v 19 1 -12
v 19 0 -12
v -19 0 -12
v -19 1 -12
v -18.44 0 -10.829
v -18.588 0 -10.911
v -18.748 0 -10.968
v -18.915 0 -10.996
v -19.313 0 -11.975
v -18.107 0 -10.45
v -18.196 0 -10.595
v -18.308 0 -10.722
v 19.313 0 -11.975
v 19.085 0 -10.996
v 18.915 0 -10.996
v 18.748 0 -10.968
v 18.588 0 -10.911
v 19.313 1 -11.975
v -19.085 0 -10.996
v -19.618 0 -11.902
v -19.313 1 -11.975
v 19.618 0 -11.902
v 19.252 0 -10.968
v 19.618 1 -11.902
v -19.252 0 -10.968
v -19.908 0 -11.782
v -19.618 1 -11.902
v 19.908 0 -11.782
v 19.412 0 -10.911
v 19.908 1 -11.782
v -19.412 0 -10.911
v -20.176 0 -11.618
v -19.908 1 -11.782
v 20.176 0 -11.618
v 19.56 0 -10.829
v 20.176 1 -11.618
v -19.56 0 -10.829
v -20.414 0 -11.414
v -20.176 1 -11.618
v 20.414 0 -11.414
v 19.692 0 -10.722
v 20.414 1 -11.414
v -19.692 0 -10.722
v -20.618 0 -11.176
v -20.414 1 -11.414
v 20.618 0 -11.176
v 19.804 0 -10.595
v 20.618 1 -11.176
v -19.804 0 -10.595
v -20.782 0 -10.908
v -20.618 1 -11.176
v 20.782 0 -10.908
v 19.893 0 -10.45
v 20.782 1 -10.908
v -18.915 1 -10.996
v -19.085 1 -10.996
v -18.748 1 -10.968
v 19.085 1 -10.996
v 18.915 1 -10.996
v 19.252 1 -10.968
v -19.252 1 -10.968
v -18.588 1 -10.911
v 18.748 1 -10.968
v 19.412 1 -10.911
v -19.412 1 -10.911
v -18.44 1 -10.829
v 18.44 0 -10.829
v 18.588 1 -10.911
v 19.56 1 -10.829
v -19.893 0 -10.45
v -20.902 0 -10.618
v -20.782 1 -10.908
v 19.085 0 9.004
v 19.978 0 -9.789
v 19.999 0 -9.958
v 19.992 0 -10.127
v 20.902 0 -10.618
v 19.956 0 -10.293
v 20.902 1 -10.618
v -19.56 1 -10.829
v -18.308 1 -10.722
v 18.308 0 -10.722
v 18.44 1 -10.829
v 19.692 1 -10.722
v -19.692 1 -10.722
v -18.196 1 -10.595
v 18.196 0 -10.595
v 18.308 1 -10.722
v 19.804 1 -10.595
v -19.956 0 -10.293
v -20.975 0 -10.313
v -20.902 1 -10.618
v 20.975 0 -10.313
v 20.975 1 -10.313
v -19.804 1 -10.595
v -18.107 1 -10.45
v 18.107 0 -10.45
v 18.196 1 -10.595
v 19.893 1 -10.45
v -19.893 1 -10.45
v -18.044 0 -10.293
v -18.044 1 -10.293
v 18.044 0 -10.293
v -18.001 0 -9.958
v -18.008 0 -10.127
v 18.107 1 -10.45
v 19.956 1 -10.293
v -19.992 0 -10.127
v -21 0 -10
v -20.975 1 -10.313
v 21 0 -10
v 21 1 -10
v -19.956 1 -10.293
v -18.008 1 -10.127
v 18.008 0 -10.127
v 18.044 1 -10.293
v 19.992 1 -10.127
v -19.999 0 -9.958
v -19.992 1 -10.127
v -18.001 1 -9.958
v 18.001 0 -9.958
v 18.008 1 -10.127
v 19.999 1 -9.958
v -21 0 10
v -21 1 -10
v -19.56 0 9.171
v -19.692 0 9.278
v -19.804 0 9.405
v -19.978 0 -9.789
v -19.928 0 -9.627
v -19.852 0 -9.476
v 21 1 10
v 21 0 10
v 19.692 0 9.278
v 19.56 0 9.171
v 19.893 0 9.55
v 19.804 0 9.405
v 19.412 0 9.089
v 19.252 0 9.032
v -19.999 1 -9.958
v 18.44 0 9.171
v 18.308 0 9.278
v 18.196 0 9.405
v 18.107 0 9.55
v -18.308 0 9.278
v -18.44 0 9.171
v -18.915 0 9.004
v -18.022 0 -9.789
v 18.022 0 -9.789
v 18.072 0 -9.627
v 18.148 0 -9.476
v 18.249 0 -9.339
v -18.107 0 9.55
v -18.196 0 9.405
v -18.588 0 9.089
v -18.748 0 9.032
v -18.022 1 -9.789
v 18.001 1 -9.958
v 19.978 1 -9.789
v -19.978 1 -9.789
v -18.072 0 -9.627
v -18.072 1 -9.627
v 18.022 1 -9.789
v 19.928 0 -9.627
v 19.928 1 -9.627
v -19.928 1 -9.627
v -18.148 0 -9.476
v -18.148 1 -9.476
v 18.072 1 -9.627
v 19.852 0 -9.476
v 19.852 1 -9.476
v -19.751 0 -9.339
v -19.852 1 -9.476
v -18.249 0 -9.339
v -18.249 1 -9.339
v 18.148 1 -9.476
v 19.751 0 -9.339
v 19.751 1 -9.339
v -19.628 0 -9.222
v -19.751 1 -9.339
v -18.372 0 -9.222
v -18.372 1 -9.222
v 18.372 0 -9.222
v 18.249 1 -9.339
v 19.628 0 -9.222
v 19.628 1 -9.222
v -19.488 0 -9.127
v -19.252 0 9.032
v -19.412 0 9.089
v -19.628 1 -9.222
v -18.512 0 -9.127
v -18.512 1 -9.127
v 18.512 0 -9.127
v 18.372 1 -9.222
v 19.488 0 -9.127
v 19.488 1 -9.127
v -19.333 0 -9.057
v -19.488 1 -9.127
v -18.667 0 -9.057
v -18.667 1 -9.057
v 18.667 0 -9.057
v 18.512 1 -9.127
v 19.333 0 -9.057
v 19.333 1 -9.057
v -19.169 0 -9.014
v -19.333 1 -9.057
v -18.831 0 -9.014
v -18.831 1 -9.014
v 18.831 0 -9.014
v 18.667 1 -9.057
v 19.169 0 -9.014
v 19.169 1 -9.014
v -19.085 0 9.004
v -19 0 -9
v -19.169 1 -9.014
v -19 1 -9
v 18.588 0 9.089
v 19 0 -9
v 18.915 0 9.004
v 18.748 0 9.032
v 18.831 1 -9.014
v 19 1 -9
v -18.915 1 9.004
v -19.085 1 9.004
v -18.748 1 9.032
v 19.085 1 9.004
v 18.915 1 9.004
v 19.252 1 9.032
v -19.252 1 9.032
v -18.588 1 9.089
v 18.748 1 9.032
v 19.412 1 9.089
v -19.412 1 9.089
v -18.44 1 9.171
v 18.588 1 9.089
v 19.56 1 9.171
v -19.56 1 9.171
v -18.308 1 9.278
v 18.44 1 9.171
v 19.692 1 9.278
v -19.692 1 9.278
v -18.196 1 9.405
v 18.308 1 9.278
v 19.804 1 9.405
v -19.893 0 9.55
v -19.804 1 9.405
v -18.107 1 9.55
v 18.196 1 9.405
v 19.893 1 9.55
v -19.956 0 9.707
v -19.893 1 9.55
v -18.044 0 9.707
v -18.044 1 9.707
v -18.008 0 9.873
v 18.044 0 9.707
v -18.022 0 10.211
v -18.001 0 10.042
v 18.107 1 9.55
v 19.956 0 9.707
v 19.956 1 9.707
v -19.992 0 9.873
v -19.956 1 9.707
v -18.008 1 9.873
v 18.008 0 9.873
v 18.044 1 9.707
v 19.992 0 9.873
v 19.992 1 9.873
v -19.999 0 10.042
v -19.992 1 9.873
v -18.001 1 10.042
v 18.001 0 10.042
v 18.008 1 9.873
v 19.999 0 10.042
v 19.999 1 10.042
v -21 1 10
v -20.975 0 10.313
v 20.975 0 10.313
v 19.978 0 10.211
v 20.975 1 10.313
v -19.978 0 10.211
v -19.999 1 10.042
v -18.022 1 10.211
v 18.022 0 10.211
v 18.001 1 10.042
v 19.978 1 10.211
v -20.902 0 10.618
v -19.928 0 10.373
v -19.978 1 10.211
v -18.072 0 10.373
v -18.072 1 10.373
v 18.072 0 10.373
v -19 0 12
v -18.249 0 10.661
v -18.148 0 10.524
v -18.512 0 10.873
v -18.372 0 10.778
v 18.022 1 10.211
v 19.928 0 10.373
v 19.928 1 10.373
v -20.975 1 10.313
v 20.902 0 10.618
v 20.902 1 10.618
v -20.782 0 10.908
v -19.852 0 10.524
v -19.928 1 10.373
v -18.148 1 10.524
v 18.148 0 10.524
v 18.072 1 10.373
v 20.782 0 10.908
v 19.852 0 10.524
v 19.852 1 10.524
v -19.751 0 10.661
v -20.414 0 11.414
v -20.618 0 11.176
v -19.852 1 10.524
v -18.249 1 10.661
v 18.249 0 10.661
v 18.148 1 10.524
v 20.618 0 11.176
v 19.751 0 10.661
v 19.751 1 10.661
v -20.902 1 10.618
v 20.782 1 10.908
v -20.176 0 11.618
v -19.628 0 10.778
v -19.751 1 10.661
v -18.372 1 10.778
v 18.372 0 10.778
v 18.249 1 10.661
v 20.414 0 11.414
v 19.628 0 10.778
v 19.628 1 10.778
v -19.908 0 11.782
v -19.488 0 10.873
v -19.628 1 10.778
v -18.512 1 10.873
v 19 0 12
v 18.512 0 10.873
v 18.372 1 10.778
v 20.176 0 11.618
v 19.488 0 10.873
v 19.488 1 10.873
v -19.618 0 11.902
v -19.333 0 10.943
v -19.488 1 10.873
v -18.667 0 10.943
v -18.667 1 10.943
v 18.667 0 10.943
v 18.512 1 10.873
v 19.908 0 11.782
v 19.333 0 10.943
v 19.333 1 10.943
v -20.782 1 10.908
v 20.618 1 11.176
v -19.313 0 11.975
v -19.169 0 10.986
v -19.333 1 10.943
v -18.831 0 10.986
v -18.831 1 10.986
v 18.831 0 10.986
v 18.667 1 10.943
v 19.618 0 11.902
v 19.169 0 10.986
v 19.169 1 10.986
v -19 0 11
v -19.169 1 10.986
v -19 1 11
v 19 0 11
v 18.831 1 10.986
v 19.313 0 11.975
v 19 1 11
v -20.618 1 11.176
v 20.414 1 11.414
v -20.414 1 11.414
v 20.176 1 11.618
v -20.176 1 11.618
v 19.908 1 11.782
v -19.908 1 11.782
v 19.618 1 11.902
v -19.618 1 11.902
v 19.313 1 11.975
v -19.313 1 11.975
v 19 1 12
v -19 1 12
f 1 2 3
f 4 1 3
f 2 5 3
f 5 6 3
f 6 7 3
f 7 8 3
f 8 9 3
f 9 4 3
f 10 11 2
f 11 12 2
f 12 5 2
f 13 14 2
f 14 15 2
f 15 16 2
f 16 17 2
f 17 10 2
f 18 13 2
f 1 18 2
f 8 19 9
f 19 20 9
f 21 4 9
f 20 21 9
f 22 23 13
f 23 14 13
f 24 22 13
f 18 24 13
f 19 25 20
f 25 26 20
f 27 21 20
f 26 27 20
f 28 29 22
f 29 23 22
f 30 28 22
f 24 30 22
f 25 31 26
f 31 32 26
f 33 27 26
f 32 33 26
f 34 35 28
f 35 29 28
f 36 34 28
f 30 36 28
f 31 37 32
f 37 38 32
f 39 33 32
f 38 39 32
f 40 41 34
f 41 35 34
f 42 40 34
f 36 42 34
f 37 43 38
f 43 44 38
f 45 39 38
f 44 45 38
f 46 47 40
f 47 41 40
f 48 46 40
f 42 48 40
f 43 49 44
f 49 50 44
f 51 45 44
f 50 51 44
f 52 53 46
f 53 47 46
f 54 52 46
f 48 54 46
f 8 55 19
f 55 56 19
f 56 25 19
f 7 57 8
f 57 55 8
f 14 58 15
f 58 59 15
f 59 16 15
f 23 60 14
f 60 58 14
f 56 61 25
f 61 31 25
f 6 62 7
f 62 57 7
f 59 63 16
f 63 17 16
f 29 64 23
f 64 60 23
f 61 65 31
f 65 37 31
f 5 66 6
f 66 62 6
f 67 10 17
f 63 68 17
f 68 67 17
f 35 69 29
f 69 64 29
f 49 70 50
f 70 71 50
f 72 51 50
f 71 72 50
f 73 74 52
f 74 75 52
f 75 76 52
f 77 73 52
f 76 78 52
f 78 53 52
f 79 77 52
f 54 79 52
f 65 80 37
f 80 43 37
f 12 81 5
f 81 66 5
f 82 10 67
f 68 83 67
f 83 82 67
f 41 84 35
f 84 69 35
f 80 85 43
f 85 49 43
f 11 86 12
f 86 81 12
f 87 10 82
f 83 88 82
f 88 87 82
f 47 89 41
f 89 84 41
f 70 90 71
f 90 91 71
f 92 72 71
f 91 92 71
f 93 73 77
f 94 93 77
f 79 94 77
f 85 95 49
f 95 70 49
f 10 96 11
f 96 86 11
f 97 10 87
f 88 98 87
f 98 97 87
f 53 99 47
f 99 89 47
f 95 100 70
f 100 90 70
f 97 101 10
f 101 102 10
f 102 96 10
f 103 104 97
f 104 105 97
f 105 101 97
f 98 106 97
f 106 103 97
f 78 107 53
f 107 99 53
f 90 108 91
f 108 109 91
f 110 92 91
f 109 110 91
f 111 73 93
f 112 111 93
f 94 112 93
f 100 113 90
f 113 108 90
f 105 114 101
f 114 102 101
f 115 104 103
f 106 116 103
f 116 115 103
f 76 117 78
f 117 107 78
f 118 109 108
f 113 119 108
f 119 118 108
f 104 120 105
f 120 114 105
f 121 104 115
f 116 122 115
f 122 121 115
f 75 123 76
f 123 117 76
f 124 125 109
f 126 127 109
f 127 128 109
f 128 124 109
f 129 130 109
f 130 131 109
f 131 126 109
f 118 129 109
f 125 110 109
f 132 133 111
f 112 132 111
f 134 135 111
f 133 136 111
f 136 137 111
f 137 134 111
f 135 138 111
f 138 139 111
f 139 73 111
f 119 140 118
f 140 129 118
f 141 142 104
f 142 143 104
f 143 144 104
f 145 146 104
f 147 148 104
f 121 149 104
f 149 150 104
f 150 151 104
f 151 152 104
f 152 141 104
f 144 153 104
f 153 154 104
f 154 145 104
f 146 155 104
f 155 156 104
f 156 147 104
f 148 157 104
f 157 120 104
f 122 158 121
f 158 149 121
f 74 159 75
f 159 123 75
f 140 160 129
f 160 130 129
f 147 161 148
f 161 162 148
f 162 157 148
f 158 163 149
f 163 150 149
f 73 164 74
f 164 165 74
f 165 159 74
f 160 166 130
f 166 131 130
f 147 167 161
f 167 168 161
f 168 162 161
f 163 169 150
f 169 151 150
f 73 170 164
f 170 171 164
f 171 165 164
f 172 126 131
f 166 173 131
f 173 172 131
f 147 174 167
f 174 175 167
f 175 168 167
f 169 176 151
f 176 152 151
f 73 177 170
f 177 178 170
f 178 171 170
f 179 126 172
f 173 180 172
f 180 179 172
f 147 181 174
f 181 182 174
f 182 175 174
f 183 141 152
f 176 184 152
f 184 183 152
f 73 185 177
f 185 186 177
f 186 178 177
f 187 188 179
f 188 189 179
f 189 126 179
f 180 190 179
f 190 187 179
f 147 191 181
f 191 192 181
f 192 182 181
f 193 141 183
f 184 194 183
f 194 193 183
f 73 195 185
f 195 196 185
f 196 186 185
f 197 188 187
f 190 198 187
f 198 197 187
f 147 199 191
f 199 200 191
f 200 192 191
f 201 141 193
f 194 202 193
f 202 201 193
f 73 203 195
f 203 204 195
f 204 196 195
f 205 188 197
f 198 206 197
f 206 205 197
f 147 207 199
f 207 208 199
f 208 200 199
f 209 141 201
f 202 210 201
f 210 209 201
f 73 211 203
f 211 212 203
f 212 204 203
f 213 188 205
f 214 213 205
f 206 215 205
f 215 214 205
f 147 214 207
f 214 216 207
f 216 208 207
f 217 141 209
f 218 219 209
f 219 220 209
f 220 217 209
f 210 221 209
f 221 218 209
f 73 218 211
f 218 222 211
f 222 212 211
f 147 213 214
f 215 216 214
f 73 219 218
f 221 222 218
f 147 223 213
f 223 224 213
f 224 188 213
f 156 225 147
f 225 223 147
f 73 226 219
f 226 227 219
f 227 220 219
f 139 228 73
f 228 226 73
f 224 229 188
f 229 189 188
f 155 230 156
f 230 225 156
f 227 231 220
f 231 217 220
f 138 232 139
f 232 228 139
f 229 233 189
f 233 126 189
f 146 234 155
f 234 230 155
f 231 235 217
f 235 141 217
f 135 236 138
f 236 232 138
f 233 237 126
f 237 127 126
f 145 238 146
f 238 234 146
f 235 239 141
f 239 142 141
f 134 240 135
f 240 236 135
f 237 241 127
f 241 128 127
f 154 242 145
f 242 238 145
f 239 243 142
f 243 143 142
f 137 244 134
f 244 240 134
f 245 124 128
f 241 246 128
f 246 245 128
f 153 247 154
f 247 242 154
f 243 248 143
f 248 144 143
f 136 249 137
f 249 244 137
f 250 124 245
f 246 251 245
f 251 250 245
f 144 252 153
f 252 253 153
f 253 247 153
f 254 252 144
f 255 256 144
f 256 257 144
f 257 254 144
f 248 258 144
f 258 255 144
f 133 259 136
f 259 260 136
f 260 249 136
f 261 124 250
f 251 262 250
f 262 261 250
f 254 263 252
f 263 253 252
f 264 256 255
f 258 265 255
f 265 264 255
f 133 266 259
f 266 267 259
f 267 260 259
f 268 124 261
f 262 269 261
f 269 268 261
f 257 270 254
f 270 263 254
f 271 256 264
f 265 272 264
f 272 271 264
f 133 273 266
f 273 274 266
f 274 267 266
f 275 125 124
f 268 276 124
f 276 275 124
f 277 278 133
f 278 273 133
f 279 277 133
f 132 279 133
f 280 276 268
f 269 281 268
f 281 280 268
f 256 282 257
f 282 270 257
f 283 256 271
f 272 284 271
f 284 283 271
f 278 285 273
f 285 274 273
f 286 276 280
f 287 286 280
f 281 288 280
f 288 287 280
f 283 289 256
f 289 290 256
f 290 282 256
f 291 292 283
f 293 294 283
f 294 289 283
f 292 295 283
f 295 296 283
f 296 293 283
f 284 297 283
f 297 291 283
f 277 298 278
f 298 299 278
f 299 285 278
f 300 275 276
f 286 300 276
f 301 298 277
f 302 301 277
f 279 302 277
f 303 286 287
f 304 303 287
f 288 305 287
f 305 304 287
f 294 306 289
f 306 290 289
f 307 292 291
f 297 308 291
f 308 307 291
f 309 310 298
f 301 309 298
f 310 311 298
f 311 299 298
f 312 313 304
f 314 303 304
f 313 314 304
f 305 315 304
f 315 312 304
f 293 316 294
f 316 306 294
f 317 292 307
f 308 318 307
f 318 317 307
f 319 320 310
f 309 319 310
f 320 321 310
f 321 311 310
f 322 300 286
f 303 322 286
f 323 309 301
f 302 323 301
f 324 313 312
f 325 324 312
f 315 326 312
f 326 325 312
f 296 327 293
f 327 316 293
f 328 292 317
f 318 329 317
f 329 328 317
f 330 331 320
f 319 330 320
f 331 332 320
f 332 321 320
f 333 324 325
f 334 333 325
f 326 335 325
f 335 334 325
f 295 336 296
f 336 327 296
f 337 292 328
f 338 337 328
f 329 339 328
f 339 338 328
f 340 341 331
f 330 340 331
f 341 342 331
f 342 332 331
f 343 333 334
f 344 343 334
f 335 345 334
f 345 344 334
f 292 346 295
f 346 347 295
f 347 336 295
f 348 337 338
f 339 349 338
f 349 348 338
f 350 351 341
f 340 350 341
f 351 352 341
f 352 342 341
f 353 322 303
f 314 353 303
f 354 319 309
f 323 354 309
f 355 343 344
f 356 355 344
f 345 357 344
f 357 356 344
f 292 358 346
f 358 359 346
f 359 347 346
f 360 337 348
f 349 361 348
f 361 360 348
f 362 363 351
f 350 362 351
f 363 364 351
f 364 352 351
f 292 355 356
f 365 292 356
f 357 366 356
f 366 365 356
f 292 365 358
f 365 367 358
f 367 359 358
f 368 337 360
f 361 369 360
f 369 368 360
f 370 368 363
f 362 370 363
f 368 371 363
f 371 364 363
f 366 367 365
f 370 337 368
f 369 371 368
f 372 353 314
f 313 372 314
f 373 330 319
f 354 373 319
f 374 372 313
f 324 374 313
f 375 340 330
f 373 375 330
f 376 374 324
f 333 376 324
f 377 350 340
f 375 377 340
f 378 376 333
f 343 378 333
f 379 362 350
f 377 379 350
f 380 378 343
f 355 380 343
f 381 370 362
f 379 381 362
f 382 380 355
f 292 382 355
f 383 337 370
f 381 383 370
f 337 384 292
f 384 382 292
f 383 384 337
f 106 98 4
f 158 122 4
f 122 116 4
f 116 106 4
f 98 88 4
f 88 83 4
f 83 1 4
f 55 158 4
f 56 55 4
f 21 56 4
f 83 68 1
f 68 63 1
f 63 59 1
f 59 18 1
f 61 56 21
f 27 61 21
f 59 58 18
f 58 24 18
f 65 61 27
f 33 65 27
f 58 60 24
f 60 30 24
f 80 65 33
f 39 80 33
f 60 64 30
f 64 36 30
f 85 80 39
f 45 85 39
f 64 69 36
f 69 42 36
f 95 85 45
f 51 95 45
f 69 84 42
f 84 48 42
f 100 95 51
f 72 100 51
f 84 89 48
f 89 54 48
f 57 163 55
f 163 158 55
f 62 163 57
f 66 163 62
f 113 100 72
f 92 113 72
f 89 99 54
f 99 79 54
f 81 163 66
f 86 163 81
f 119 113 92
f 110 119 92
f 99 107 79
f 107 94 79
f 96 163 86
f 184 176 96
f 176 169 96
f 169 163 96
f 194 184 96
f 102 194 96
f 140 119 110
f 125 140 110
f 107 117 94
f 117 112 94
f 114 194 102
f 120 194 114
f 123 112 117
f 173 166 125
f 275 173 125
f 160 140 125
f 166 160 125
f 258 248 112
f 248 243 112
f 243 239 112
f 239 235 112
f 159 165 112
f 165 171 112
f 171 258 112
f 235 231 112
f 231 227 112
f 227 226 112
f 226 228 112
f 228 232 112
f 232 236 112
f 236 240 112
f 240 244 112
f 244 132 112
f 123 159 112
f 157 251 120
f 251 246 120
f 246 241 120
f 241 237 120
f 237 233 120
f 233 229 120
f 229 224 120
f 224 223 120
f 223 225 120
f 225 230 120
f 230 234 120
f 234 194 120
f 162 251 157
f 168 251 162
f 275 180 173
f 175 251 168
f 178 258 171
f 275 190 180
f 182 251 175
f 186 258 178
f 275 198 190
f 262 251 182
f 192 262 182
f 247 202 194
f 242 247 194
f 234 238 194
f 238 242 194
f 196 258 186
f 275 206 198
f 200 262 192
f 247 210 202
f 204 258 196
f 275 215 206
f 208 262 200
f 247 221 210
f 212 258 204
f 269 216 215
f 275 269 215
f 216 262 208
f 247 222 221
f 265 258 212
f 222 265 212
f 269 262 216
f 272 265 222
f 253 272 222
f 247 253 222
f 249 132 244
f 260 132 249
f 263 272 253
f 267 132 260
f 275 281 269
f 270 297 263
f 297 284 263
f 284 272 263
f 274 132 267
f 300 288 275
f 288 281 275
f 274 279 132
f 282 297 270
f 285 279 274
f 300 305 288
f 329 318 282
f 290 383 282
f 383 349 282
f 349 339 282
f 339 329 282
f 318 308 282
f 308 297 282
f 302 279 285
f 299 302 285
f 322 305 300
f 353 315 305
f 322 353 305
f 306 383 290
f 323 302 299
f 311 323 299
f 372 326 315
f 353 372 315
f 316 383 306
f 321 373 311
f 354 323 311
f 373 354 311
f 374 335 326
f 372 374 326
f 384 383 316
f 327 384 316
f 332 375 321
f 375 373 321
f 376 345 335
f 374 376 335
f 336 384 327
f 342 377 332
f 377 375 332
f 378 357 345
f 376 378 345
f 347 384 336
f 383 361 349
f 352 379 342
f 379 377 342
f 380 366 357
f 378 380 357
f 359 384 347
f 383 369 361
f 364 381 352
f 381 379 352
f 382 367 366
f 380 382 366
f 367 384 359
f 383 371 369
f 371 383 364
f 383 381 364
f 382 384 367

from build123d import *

# Parameters (mm, degrees)
SKETCH1_W           = 42
SKETCH1_H           = 24
BOSS_EXTRUDE1_DEPTH = 1
SKETCH2_R           = 1
CUT_EXTRUDE1_DEPTH  = 2
FILLET1_R           = 2


with BuildPart() as part:
    # Sketch1 → Boss-Extrude1 (new body)
    with BuildSketch(Plane(origin=(0, 0, 0), x_dir=(1, 0, 0), z_dir=(0, 1, 0))):
        Rectangle(SKETCH1_W, SKETCH1_H)
    extrude(amount=BOSS_EXTRUDE1_DEPTH)

    # Sketch2 → Cut-Extrude1 (cut, through all)
    with BuildSketch(Plane(origin=(0, 1, 0), x_dir=(1, 0, 0), z_dir=(0, 1, 0))):
        with Locations((-19, 10)):
            Circle(SKETCH2_R)
        with Locations((-19, -10)):
            Circle(SKETCH2_R)
        with Locations((19, -10)):
            Circle(SKETCH2_R)
        with Locations((19, 10)):
            Circle(SKETCH2_R)
    extrude(amount=-CUT_EXTRUDE1_DEPTH, mode=Mode.SUBTRACT)

    # Fillet1
    fillet1_edges = [part.edges().sort_by_distance(p)[0] for p in [
        (21, 0.5, 12),
        (-21, 0.5, 12),
        (-21, 0.5, -12),
        (21, 0.5, -12),
    ]]
    fillet(fillet1_edges, radius=FILLET1_R)


solid = part.part
